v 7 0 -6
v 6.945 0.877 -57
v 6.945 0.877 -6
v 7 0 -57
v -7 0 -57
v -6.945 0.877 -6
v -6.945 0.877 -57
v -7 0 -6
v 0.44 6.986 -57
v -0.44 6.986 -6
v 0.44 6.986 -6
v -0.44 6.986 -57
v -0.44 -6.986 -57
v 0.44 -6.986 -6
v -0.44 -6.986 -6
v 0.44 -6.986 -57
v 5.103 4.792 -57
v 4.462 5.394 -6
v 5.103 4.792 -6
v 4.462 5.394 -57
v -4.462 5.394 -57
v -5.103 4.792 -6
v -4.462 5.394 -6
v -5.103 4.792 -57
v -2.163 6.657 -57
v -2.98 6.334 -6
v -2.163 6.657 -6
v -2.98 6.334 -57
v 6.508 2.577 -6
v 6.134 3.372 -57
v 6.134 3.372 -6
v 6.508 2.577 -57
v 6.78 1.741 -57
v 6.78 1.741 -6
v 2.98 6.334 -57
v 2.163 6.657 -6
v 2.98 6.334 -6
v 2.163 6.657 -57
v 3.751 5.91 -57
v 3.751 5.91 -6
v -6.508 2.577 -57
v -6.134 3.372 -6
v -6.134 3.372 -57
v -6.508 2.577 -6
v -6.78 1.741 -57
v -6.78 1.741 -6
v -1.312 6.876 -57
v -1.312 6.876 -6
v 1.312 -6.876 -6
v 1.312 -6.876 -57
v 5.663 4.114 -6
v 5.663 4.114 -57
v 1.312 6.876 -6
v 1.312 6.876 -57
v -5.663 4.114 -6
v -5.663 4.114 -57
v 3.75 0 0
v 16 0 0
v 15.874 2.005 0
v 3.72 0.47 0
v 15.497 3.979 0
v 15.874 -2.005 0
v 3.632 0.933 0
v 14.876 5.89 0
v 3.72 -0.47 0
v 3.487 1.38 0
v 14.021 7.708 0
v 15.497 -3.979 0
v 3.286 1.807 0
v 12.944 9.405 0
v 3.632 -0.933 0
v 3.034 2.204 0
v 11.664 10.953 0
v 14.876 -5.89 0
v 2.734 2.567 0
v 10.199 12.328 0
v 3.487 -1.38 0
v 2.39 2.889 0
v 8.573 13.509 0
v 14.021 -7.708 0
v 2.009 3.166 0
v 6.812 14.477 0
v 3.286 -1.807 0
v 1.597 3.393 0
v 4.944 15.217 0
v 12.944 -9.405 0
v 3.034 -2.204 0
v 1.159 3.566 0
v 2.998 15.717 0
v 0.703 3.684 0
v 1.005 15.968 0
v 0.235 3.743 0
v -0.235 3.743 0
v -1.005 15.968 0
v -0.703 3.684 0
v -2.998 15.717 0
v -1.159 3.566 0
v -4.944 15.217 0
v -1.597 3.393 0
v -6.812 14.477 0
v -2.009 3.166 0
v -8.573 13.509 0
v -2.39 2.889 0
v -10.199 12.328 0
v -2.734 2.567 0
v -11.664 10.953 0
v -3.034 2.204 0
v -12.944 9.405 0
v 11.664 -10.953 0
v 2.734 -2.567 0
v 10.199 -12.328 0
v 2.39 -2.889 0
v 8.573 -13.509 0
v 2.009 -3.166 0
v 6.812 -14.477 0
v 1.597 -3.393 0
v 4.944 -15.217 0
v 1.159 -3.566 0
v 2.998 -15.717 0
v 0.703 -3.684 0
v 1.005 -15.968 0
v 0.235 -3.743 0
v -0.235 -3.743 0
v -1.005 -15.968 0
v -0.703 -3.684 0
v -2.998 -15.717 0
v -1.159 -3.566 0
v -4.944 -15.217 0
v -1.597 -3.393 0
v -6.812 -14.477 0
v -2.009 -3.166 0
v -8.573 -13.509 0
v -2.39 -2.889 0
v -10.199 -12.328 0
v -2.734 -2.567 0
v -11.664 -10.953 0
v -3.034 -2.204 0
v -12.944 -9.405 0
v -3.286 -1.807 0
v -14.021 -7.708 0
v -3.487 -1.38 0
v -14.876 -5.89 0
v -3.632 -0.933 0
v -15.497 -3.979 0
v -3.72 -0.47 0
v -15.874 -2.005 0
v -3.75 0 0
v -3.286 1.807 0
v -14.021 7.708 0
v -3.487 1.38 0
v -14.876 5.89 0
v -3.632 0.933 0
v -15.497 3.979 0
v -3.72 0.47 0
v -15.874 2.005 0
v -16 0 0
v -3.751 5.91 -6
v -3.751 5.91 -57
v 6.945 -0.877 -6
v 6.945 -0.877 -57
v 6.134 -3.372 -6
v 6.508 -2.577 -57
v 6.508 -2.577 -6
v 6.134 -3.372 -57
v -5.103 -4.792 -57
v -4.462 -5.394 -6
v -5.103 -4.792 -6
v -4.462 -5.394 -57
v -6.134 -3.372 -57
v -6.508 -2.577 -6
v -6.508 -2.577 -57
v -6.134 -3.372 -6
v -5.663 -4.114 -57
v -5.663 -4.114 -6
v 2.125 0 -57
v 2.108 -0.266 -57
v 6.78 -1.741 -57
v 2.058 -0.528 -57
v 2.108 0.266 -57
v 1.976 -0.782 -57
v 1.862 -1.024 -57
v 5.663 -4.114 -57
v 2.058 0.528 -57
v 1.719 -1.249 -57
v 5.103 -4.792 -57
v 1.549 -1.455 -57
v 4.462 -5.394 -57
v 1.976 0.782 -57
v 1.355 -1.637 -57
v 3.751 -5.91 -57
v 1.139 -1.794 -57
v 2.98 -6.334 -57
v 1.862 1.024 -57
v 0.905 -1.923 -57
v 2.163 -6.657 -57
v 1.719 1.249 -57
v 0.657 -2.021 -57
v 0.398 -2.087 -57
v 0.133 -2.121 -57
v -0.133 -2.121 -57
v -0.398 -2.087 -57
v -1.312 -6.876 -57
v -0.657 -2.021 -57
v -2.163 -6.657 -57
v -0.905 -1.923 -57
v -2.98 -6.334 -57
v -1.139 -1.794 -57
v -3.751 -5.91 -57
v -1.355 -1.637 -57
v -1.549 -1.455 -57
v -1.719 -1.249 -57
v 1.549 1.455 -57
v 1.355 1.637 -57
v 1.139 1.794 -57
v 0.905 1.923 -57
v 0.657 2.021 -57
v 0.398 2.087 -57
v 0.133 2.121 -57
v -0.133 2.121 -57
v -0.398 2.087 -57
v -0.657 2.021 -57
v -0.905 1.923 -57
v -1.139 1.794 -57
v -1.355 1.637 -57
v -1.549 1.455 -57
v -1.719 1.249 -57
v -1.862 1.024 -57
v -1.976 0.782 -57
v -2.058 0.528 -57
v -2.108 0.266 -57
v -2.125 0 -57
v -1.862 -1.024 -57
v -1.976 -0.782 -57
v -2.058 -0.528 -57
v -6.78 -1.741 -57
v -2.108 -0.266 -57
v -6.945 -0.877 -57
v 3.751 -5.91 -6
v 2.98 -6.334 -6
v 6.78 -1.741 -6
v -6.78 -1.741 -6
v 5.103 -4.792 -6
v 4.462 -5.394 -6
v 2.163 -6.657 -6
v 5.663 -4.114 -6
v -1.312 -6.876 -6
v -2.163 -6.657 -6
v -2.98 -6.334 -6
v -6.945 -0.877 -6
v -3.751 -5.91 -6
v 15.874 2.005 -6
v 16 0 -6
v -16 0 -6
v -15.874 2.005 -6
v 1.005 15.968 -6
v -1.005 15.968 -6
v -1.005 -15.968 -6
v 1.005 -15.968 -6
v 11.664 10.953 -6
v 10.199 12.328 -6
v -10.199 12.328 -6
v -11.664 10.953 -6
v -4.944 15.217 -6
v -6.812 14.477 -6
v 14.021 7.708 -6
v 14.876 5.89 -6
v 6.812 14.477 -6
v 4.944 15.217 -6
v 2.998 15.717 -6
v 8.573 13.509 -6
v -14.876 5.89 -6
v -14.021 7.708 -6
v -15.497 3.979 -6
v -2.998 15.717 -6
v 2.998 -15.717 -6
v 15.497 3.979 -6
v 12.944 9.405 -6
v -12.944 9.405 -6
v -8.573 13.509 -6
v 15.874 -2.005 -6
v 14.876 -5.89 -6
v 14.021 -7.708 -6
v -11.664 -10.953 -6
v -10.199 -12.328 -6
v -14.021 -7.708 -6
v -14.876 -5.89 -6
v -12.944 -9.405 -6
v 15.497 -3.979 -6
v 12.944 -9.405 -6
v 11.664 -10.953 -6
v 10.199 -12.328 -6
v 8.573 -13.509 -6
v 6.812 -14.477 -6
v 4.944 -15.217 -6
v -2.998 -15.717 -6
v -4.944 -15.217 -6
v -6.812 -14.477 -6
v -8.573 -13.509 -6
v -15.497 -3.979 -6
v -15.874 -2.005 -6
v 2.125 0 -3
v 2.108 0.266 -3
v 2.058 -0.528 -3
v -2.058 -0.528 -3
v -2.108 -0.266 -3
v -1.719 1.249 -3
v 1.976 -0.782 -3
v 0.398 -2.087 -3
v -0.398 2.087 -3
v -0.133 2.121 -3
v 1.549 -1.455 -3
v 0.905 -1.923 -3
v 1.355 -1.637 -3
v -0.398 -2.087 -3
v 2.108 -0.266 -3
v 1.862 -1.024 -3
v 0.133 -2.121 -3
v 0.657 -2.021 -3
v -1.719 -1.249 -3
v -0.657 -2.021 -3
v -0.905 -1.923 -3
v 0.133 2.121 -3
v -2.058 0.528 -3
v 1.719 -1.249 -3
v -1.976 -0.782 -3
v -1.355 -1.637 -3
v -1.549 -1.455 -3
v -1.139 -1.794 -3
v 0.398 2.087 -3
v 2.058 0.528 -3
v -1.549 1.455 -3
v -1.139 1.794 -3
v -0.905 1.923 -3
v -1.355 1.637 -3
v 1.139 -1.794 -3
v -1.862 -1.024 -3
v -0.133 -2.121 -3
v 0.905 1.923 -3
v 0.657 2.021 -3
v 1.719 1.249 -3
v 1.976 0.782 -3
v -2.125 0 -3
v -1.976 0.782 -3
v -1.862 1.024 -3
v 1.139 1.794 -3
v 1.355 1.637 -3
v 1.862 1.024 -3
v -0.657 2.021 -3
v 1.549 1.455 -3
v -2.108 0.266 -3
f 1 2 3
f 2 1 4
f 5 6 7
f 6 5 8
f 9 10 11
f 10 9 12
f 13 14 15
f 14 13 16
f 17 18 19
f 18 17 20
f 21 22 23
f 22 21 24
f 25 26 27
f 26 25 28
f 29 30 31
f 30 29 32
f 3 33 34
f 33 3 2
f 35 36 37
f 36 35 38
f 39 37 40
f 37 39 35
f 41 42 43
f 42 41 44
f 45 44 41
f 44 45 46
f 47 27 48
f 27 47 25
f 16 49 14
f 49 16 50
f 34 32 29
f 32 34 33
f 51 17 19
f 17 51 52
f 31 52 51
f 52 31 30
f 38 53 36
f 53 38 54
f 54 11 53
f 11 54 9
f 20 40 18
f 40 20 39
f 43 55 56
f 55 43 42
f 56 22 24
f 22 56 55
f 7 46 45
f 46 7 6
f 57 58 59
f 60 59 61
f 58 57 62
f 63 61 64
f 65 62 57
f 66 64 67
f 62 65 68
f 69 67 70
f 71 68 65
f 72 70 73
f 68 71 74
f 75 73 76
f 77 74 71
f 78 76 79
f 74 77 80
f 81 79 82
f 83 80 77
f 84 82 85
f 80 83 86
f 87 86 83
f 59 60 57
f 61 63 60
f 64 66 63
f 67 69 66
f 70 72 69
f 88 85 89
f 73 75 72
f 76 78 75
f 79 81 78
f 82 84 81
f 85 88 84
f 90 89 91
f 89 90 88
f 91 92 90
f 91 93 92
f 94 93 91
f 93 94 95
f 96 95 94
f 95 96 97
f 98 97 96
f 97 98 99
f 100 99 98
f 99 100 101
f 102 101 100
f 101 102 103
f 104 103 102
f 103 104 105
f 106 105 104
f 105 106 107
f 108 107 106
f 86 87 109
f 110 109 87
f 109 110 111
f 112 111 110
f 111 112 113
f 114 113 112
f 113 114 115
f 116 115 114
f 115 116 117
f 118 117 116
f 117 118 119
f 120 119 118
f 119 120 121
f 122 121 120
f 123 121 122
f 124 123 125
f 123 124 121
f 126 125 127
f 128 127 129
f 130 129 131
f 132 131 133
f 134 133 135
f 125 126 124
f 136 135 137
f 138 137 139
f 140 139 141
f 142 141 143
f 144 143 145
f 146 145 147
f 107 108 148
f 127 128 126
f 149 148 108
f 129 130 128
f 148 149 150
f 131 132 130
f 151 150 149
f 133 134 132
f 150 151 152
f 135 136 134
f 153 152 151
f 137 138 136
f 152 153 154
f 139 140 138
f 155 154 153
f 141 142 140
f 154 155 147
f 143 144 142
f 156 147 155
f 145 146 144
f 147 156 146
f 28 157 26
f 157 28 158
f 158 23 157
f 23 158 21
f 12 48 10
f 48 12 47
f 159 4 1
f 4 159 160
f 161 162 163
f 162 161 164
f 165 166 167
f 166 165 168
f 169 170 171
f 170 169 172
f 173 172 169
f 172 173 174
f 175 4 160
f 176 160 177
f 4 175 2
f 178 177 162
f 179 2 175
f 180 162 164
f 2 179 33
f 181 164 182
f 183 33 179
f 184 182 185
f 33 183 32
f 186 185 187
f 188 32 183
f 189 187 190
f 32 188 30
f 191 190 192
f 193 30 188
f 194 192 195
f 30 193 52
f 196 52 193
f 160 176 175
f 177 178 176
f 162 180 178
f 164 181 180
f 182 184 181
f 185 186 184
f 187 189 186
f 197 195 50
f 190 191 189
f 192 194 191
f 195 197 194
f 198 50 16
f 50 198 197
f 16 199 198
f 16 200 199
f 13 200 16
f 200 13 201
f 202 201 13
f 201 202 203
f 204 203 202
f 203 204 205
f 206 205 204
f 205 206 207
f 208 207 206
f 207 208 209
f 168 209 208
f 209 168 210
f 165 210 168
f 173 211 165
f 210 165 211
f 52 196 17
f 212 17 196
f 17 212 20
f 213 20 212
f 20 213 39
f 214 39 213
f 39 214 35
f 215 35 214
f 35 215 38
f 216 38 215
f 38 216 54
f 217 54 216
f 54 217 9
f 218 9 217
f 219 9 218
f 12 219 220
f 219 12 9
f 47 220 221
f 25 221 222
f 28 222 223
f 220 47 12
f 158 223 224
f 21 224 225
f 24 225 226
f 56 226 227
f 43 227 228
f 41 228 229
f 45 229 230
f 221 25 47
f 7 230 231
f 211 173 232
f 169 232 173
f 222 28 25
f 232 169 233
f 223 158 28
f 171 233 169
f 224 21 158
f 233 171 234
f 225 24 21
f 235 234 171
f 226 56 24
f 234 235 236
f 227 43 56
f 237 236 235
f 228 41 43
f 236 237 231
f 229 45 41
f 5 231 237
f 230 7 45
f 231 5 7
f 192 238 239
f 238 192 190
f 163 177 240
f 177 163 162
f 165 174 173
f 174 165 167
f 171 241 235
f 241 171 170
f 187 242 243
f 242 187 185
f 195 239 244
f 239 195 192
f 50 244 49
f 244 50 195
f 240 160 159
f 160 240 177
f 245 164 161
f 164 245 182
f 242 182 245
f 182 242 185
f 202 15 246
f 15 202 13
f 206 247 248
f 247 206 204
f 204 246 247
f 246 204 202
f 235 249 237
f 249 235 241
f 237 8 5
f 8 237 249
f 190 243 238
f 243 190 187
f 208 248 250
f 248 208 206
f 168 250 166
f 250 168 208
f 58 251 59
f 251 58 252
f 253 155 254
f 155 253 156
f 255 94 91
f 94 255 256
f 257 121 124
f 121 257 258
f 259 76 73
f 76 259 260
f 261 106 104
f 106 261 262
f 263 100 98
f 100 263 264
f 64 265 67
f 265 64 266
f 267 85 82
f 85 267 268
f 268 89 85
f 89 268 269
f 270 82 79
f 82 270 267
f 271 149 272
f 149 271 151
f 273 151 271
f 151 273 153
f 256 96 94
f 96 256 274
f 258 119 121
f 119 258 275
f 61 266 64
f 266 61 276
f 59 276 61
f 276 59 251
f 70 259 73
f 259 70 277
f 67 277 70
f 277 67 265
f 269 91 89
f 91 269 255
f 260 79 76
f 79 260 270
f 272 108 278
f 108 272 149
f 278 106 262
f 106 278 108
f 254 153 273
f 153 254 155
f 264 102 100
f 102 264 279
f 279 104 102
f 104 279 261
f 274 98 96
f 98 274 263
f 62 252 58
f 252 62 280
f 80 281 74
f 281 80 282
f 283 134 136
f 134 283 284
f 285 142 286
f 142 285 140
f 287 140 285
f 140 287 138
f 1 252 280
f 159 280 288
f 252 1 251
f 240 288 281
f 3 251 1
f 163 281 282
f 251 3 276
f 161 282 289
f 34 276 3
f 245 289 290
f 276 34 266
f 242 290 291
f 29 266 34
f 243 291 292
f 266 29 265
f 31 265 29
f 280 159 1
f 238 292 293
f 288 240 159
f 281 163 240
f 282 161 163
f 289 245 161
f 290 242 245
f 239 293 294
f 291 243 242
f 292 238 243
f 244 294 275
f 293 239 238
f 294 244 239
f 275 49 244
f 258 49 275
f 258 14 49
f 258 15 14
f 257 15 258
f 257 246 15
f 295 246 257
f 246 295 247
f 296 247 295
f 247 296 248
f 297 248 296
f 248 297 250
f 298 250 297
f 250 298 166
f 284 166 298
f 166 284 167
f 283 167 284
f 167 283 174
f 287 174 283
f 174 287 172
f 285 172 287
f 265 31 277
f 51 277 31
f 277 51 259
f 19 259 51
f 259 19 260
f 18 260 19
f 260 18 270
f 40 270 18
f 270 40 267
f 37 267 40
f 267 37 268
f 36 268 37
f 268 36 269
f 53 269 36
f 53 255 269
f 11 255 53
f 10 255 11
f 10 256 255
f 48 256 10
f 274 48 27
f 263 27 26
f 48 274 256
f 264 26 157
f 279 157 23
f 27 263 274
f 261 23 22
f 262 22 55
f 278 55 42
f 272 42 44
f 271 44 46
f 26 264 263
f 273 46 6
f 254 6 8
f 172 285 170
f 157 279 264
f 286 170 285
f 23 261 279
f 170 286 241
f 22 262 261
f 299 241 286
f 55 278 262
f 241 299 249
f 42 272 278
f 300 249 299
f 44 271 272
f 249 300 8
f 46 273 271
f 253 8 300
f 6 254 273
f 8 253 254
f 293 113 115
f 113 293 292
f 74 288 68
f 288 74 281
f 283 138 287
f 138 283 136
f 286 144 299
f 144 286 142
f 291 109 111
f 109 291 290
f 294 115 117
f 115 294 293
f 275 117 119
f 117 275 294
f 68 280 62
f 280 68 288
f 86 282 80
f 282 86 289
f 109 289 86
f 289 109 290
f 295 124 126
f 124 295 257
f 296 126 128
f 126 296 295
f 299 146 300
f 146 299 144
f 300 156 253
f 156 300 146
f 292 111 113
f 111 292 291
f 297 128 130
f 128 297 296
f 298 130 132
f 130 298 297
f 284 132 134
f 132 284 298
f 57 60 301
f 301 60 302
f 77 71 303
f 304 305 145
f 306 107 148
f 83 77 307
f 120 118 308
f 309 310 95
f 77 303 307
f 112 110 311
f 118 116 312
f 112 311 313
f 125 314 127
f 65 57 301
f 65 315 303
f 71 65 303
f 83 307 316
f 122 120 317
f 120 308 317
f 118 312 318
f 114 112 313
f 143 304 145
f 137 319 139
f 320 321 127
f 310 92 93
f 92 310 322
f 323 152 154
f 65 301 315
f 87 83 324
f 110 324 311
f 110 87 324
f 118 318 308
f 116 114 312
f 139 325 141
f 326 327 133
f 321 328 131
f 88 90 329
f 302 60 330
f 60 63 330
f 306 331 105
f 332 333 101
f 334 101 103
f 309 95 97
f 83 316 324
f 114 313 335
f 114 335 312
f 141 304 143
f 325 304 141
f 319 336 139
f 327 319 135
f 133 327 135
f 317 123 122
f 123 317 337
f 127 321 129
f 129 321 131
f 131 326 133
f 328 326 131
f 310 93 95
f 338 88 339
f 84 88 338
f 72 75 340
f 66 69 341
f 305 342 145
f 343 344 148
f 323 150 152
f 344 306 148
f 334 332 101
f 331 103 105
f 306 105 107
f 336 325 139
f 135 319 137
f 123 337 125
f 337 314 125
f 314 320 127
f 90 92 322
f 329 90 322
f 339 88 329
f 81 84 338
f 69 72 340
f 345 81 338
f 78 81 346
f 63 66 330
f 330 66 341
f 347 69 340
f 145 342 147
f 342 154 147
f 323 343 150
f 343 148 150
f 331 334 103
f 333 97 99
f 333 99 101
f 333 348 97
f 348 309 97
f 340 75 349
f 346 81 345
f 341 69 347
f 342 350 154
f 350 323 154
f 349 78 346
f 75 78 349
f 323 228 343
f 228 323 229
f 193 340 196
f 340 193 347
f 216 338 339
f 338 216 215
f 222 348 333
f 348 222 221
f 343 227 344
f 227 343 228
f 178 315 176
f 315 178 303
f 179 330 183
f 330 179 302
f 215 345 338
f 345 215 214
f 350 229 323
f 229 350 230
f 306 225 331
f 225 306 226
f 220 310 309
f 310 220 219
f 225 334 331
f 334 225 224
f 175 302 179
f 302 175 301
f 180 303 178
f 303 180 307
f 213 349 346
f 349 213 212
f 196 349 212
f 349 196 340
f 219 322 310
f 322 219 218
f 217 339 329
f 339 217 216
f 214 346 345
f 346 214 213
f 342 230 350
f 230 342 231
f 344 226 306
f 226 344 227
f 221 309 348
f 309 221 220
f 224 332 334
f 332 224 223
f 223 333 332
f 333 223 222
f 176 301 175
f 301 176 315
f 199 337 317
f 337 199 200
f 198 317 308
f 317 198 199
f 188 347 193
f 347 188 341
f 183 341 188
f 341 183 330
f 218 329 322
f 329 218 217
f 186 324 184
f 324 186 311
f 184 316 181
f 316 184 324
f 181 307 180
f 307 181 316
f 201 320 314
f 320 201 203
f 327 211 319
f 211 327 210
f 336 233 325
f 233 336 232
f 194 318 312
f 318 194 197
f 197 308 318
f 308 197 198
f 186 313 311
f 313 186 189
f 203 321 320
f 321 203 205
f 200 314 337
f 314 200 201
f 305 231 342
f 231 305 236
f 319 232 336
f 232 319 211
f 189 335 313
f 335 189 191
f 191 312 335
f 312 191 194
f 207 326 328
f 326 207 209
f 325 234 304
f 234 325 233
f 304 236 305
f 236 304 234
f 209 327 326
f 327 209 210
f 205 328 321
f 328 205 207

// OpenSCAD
$fn = 50;


difference() {
	union() {
		translate(v = [0, 0, -57.0000000000]) {
			cylinder(h = 57, r = 7.0000000000);
		}
		translate(v = [0, 0, -6.0000000000]) {
			cylinder(h = 6, r = 16.0000000000);
		}
	}
	union() {
		translate(v = [0, 0, 0]) {
			rotate(a = [0, 0, 0]) {
				difference() {
					union() {
						#translate(v = [0, 0, -57.0000000000]) {
							cylinder(h = 57, r = 2.0000000000);
						}
						#translate(v = [0, 0, -3]) {
							cylinder(h = 3, r1 = 2.1250000000, r2 = 3.7500000000);
						}
						#translate(v = [0, 0, -57.0000000000]) {
							cylinder(h = 57, r = 2.1250000000);
						}
						#translate(v = [0, 0, -57.0000000000]) {
							cylinder(h = 57, r = 2.0000000000);
						}
					}
					union();
				}
			}
		}
	}
}
